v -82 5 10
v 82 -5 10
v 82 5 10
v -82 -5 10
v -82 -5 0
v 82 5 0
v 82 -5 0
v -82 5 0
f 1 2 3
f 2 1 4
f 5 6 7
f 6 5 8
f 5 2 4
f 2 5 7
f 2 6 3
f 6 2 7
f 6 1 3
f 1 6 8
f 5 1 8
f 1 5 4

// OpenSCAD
/* ==========================================================================
   PROJETO CAMPO TÁTIL - EIXO METÁLICO X (hardware comprado)
   Representação 3D do Eixo de Aço X de 10x10x164mm da ponte para montagem/fatiamento
   ========================================================================== */

$fn = 60;

module barra_quadrada_x() {
    color("silver")
        cube([164, 10, 10], center=true);
}

// Renderiza centralizado no plano Z=0
translate([0, 0, 5])
    barra_quadrada_x();
